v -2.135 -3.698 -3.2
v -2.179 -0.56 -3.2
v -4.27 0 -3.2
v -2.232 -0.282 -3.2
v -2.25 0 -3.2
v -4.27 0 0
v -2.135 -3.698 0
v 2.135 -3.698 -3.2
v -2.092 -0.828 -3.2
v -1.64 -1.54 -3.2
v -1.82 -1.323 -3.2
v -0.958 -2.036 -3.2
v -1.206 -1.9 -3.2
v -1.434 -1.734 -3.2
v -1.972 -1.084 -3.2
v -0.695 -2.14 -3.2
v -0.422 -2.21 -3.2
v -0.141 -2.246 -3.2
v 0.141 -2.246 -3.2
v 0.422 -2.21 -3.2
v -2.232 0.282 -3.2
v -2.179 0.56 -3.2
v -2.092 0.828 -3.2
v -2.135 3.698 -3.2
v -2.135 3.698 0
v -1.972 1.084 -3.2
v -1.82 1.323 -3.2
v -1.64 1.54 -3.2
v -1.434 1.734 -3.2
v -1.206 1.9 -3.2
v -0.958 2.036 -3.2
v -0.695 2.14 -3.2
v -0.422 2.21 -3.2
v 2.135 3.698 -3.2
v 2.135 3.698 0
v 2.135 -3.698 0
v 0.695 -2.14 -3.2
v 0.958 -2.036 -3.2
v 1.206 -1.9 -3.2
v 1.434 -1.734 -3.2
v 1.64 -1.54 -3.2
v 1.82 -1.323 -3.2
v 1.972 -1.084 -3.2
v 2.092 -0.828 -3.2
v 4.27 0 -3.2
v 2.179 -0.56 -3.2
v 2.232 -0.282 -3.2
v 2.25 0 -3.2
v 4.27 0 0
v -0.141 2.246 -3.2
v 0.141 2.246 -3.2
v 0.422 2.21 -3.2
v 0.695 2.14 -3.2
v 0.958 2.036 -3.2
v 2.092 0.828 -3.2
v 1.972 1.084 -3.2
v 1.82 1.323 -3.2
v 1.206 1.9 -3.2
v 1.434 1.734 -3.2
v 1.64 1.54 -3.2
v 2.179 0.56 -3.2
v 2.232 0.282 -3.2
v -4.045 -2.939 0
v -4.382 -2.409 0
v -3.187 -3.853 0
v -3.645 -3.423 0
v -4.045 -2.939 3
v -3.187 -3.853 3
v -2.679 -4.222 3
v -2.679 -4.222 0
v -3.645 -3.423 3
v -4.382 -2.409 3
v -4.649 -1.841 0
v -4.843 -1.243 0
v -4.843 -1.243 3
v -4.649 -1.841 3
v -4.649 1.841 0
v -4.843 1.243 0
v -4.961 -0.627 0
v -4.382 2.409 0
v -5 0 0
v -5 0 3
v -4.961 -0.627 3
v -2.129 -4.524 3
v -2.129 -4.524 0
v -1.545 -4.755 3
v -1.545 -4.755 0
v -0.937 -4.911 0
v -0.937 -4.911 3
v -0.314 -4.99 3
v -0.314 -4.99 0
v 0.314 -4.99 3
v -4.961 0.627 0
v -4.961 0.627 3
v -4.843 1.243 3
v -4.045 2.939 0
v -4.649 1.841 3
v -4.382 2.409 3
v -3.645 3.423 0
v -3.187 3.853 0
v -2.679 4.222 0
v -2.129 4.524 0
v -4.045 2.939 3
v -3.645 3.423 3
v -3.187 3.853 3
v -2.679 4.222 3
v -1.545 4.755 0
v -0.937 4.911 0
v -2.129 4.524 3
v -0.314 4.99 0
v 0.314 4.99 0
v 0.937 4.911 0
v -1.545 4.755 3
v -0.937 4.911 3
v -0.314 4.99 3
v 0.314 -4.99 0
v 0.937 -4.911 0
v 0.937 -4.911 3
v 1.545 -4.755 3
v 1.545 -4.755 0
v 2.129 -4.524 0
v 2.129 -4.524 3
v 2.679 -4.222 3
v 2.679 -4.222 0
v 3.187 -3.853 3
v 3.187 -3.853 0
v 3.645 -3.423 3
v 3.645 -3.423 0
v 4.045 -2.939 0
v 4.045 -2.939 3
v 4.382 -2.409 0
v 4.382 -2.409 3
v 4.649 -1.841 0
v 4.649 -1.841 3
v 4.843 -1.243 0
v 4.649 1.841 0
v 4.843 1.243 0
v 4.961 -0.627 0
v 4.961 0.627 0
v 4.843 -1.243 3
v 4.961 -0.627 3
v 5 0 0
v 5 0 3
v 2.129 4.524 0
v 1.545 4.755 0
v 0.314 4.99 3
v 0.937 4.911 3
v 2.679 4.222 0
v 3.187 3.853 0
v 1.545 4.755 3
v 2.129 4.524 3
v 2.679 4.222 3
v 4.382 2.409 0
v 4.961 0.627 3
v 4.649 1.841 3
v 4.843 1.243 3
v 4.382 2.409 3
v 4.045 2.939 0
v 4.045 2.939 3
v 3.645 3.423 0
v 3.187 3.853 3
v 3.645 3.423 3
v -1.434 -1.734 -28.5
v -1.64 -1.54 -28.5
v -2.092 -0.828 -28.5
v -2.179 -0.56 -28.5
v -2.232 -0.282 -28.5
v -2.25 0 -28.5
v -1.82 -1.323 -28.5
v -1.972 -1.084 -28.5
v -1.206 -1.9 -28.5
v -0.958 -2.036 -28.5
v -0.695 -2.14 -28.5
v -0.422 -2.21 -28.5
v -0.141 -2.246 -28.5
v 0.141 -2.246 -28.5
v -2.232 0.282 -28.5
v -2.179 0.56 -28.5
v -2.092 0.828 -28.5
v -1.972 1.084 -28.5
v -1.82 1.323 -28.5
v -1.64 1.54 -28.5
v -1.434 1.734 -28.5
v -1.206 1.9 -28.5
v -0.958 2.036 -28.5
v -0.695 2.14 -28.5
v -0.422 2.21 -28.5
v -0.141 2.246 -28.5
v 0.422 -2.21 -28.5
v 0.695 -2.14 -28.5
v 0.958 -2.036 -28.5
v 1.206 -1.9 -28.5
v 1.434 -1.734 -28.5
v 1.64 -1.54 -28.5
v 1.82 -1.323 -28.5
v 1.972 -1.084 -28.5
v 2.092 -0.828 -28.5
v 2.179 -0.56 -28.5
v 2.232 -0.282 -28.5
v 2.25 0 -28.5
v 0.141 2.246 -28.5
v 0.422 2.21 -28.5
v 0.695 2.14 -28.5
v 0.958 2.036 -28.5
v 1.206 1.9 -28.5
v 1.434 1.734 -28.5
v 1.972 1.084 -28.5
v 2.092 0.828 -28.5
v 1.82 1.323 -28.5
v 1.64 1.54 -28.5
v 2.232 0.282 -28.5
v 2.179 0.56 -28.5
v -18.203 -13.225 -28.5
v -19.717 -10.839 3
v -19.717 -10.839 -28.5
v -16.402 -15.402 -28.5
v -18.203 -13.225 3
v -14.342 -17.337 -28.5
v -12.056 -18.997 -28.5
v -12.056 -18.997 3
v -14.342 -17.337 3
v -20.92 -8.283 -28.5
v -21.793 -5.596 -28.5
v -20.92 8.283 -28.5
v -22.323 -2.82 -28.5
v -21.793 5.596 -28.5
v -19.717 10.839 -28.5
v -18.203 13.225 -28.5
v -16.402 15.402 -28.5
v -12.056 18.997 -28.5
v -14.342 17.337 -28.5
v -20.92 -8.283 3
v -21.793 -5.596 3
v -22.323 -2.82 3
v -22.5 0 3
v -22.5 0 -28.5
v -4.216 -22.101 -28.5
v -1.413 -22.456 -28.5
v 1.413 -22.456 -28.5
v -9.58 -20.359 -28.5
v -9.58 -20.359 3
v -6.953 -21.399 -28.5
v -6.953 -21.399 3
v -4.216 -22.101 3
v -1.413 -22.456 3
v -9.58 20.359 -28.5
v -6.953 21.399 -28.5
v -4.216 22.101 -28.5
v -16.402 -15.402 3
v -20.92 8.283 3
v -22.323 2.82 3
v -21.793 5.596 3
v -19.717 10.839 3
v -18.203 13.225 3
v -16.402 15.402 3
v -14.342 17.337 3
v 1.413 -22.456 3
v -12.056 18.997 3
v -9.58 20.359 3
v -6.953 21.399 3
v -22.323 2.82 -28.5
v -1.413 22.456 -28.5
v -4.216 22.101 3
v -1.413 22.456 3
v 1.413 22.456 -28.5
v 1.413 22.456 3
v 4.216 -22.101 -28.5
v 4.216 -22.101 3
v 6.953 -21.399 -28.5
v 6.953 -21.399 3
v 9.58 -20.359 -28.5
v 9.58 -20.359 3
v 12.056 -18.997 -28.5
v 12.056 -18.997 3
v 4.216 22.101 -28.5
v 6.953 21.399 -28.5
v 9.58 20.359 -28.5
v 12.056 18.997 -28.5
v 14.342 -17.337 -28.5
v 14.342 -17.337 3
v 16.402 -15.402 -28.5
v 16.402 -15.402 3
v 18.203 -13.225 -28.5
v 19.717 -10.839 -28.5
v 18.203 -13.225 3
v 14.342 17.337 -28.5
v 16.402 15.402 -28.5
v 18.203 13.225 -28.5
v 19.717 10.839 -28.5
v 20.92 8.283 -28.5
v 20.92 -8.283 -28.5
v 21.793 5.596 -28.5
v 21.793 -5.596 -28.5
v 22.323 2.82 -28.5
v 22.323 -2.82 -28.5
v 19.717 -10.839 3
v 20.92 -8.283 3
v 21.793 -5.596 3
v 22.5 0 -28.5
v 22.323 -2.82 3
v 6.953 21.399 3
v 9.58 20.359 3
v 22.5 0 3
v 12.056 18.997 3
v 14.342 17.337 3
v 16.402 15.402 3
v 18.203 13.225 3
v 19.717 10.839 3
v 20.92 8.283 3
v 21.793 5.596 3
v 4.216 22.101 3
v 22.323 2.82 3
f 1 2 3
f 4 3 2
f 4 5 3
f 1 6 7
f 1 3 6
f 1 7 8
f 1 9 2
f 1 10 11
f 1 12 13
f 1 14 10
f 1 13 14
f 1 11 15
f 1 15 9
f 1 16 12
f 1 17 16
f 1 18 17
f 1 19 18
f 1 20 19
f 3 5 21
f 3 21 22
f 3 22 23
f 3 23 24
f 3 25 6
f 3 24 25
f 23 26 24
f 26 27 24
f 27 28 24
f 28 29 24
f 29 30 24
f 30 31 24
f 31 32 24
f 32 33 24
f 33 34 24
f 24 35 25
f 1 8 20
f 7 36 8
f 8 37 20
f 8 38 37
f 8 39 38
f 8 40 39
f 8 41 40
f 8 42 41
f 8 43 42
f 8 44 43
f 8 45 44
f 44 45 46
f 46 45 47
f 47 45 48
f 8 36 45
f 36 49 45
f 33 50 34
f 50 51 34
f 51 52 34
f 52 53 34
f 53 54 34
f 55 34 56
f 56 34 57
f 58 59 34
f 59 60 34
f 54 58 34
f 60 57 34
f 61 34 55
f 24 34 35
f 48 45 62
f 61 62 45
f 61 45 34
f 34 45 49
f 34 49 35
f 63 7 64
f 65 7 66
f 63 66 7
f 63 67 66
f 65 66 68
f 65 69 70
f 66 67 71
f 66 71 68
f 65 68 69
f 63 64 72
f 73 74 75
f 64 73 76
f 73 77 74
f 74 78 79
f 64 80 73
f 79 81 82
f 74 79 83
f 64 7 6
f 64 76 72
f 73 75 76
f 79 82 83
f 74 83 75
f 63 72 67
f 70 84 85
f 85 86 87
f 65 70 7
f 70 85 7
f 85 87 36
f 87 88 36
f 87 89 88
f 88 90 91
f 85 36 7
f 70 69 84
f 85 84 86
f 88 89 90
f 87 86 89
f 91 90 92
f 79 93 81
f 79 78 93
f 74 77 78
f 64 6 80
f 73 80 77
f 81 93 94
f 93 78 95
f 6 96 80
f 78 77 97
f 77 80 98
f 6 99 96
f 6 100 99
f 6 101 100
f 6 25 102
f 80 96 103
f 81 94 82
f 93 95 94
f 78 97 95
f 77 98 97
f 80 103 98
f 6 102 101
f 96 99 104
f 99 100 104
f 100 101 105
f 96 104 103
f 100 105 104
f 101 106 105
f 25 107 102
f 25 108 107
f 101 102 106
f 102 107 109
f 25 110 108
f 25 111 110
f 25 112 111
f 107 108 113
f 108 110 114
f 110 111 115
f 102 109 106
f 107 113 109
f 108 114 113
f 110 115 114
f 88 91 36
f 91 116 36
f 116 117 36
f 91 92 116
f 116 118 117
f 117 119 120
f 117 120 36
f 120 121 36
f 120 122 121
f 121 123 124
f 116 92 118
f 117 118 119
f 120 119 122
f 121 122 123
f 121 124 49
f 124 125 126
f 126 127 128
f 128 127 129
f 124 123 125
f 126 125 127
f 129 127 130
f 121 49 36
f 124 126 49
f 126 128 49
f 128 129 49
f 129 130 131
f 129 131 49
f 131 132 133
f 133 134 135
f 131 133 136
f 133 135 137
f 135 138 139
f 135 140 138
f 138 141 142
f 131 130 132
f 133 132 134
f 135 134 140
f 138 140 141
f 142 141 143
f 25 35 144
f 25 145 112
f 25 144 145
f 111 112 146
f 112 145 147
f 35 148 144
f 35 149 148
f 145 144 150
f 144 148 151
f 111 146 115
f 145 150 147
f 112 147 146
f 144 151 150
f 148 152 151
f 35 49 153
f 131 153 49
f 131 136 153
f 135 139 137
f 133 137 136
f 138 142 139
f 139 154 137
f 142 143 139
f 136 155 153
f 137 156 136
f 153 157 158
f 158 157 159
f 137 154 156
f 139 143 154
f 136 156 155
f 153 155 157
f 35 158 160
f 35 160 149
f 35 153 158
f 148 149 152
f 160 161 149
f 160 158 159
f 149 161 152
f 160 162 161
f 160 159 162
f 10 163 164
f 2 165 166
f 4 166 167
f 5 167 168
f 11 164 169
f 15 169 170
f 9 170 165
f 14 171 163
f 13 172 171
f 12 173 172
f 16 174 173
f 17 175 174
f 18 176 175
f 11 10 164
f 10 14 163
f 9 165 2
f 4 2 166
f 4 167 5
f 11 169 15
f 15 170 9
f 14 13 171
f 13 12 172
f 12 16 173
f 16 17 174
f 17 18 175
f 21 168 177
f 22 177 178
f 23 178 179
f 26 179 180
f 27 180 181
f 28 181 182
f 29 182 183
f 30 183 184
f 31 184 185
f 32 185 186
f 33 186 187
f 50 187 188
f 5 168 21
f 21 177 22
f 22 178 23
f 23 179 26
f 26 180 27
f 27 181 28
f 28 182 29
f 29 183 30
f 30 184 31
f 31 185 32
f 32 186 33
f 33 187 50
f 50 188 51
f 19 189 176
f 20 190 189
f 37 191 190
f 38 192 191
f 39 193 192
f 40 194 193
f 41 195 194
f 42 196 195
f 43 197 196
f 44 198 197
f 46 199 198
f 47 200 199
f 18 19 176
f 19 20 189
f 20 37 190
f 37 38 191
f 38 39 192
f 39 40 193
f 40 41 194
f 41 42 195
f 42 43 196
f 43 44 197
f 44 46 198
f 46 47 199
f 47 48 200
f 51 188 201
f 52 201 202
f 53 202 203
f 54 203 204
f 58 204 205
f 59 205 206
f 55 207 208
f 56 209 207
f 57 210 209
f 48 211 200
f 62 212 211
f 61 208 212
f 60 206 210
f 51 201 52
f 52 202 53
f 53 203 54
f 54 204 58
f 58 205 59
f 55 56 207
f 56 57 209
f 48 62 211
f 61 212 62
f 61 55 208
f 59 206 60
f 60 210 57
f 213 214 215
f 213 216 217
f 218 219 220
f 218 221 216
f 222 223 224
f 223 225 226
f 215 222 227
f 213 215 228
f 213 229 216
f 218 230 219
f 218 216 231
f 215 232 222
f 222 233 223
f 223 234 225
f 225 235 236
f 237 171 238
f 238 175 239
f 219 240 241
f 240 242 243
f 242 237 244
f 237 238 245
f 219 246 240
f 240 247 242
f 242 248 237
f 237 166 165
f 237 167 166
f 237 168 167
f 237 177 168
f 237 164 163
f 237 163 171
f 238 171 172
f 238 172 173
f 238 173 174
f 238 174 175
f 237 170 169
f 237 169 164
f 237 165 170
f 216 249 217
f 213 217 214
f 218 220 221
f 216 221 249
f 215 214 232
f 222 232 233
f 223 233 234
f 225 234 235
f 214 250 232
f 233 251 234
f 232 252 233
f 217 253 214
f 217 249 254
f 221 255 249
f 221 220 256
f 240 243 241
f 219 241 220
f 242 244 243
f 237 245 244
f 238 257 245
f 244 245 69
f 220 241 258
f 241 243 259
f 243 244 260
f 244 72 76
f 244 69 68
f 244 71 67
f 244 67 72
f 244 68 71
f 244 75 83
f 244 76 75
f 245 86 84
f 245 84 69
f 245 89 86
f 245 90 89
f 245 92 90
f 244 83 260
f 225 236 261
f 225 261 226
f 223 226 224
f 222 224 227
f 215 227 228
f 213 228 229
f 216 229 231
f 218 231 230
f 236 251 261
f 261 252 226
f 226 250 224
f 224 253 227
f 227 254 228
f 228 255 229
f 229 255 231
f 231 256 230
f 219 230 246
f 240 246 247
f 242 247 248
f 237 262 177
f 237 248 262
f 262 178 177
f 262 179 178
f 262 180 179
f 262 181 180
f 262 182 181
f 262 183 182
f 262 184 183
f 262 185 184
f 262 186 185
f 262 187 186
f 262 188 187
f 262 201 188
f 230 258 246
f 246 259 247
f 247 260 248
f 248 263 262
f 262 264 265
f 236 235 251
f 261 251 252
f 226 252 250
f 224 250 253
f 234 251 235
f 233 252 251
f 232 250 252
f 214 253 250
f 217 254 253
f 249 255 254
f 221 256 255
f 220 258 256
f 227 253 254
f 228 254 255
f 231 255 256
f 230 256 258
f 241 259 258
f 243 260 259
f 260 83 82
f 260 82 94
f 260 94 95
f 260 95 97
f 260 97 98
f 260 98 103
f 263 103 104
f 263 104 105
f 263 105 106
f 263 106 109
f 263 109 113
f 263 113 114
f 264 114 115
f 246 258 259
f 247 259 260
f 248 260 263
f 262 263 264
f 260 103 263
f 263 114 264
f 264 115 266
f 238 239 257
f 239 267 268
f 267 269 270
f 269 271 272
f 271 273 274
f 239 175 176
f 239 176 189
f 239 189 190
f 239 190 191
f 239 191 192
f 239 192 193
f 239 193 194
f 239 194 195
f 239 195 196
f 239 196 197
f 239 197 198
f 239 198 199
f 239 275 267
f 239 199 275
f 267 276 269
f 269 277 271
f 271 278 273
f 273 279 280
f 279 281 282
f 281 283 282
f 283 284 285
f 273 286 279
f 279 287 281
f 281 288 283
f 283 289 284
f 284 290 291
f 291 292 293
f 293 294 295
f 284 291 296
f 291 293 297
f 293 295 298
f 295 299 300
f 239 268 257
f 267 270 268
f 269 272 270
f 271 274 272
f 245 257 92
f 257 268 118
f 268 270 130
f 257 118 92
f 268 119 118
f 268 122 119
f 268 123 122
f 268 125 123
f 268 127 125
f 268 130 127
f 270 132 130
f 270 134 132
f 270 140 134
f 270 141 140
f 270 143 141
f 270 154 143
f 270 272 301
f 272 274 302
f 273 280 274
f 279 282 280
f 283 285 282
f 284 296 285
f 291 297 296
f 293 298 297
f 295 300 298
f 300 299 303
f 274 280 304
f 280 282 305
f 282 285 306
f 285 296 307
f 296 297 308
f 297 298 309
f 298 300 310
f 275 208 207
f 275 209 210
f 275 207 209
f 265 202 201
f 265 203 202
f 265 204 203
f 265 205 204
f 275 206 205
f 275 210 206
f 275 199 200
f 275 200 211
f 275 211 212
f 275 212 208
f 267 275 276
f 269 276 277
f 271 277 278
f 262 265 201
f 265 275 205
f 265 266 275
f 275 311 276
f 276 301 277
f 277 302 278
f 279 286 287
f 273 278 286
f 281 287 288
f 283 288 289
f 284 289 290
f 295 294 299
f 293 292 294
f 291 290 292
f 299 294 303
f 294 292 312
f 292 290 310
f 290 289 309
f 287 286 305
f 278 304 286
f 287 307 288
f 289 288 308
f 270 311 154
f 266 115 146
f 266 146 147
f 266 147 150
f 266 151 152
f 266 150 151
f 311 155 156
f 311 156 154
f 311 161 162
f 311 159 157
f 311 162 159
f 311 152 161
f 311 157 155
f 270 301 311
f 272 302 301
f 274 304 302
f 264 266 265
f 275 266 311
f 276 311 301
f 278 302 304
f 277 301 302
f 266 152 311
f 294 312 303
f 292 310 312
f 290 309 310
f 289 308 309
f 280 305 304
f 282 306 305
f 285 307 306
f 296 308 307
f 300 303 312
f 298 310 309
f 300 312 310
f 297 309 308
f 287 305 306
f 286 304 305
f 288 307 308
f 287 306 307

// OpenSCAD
$fn = 50;


difference() {
	union() {
		translate(v = [0, 0, -28.5000000000]) {
			cylinder(h = 31.5000000000, r = 22.5000000000);
		}
	}
	union() {
		translate(v = [0, 0, 0]) {
			rotate(a = [0, 0, 0]) {
				difference() {
					union() {
						translate(v = [0, 0, -3.2000000000]) {
							linear_extrude(height = 3.2000000000) {
								polygon(points = [[4.2698000000, 0.0000000000], [2.1349000000, 3.6977552691], [-2.1349000000, 3.6977552691], [-4.2698000000, 0.0000000000], [-2.1349000000, -3.6977552691], [2.1349000000, -3.6977552691]]);
							}
						}
					}
					union();
				}
			}
		}
		#cylinder(h = 3, r = 5.0000000000);
		#translate(v = [0, 0, -100.0000000000]) {
			cylinder(h = 200, r = 2.2500000000);
		}
	}
}
